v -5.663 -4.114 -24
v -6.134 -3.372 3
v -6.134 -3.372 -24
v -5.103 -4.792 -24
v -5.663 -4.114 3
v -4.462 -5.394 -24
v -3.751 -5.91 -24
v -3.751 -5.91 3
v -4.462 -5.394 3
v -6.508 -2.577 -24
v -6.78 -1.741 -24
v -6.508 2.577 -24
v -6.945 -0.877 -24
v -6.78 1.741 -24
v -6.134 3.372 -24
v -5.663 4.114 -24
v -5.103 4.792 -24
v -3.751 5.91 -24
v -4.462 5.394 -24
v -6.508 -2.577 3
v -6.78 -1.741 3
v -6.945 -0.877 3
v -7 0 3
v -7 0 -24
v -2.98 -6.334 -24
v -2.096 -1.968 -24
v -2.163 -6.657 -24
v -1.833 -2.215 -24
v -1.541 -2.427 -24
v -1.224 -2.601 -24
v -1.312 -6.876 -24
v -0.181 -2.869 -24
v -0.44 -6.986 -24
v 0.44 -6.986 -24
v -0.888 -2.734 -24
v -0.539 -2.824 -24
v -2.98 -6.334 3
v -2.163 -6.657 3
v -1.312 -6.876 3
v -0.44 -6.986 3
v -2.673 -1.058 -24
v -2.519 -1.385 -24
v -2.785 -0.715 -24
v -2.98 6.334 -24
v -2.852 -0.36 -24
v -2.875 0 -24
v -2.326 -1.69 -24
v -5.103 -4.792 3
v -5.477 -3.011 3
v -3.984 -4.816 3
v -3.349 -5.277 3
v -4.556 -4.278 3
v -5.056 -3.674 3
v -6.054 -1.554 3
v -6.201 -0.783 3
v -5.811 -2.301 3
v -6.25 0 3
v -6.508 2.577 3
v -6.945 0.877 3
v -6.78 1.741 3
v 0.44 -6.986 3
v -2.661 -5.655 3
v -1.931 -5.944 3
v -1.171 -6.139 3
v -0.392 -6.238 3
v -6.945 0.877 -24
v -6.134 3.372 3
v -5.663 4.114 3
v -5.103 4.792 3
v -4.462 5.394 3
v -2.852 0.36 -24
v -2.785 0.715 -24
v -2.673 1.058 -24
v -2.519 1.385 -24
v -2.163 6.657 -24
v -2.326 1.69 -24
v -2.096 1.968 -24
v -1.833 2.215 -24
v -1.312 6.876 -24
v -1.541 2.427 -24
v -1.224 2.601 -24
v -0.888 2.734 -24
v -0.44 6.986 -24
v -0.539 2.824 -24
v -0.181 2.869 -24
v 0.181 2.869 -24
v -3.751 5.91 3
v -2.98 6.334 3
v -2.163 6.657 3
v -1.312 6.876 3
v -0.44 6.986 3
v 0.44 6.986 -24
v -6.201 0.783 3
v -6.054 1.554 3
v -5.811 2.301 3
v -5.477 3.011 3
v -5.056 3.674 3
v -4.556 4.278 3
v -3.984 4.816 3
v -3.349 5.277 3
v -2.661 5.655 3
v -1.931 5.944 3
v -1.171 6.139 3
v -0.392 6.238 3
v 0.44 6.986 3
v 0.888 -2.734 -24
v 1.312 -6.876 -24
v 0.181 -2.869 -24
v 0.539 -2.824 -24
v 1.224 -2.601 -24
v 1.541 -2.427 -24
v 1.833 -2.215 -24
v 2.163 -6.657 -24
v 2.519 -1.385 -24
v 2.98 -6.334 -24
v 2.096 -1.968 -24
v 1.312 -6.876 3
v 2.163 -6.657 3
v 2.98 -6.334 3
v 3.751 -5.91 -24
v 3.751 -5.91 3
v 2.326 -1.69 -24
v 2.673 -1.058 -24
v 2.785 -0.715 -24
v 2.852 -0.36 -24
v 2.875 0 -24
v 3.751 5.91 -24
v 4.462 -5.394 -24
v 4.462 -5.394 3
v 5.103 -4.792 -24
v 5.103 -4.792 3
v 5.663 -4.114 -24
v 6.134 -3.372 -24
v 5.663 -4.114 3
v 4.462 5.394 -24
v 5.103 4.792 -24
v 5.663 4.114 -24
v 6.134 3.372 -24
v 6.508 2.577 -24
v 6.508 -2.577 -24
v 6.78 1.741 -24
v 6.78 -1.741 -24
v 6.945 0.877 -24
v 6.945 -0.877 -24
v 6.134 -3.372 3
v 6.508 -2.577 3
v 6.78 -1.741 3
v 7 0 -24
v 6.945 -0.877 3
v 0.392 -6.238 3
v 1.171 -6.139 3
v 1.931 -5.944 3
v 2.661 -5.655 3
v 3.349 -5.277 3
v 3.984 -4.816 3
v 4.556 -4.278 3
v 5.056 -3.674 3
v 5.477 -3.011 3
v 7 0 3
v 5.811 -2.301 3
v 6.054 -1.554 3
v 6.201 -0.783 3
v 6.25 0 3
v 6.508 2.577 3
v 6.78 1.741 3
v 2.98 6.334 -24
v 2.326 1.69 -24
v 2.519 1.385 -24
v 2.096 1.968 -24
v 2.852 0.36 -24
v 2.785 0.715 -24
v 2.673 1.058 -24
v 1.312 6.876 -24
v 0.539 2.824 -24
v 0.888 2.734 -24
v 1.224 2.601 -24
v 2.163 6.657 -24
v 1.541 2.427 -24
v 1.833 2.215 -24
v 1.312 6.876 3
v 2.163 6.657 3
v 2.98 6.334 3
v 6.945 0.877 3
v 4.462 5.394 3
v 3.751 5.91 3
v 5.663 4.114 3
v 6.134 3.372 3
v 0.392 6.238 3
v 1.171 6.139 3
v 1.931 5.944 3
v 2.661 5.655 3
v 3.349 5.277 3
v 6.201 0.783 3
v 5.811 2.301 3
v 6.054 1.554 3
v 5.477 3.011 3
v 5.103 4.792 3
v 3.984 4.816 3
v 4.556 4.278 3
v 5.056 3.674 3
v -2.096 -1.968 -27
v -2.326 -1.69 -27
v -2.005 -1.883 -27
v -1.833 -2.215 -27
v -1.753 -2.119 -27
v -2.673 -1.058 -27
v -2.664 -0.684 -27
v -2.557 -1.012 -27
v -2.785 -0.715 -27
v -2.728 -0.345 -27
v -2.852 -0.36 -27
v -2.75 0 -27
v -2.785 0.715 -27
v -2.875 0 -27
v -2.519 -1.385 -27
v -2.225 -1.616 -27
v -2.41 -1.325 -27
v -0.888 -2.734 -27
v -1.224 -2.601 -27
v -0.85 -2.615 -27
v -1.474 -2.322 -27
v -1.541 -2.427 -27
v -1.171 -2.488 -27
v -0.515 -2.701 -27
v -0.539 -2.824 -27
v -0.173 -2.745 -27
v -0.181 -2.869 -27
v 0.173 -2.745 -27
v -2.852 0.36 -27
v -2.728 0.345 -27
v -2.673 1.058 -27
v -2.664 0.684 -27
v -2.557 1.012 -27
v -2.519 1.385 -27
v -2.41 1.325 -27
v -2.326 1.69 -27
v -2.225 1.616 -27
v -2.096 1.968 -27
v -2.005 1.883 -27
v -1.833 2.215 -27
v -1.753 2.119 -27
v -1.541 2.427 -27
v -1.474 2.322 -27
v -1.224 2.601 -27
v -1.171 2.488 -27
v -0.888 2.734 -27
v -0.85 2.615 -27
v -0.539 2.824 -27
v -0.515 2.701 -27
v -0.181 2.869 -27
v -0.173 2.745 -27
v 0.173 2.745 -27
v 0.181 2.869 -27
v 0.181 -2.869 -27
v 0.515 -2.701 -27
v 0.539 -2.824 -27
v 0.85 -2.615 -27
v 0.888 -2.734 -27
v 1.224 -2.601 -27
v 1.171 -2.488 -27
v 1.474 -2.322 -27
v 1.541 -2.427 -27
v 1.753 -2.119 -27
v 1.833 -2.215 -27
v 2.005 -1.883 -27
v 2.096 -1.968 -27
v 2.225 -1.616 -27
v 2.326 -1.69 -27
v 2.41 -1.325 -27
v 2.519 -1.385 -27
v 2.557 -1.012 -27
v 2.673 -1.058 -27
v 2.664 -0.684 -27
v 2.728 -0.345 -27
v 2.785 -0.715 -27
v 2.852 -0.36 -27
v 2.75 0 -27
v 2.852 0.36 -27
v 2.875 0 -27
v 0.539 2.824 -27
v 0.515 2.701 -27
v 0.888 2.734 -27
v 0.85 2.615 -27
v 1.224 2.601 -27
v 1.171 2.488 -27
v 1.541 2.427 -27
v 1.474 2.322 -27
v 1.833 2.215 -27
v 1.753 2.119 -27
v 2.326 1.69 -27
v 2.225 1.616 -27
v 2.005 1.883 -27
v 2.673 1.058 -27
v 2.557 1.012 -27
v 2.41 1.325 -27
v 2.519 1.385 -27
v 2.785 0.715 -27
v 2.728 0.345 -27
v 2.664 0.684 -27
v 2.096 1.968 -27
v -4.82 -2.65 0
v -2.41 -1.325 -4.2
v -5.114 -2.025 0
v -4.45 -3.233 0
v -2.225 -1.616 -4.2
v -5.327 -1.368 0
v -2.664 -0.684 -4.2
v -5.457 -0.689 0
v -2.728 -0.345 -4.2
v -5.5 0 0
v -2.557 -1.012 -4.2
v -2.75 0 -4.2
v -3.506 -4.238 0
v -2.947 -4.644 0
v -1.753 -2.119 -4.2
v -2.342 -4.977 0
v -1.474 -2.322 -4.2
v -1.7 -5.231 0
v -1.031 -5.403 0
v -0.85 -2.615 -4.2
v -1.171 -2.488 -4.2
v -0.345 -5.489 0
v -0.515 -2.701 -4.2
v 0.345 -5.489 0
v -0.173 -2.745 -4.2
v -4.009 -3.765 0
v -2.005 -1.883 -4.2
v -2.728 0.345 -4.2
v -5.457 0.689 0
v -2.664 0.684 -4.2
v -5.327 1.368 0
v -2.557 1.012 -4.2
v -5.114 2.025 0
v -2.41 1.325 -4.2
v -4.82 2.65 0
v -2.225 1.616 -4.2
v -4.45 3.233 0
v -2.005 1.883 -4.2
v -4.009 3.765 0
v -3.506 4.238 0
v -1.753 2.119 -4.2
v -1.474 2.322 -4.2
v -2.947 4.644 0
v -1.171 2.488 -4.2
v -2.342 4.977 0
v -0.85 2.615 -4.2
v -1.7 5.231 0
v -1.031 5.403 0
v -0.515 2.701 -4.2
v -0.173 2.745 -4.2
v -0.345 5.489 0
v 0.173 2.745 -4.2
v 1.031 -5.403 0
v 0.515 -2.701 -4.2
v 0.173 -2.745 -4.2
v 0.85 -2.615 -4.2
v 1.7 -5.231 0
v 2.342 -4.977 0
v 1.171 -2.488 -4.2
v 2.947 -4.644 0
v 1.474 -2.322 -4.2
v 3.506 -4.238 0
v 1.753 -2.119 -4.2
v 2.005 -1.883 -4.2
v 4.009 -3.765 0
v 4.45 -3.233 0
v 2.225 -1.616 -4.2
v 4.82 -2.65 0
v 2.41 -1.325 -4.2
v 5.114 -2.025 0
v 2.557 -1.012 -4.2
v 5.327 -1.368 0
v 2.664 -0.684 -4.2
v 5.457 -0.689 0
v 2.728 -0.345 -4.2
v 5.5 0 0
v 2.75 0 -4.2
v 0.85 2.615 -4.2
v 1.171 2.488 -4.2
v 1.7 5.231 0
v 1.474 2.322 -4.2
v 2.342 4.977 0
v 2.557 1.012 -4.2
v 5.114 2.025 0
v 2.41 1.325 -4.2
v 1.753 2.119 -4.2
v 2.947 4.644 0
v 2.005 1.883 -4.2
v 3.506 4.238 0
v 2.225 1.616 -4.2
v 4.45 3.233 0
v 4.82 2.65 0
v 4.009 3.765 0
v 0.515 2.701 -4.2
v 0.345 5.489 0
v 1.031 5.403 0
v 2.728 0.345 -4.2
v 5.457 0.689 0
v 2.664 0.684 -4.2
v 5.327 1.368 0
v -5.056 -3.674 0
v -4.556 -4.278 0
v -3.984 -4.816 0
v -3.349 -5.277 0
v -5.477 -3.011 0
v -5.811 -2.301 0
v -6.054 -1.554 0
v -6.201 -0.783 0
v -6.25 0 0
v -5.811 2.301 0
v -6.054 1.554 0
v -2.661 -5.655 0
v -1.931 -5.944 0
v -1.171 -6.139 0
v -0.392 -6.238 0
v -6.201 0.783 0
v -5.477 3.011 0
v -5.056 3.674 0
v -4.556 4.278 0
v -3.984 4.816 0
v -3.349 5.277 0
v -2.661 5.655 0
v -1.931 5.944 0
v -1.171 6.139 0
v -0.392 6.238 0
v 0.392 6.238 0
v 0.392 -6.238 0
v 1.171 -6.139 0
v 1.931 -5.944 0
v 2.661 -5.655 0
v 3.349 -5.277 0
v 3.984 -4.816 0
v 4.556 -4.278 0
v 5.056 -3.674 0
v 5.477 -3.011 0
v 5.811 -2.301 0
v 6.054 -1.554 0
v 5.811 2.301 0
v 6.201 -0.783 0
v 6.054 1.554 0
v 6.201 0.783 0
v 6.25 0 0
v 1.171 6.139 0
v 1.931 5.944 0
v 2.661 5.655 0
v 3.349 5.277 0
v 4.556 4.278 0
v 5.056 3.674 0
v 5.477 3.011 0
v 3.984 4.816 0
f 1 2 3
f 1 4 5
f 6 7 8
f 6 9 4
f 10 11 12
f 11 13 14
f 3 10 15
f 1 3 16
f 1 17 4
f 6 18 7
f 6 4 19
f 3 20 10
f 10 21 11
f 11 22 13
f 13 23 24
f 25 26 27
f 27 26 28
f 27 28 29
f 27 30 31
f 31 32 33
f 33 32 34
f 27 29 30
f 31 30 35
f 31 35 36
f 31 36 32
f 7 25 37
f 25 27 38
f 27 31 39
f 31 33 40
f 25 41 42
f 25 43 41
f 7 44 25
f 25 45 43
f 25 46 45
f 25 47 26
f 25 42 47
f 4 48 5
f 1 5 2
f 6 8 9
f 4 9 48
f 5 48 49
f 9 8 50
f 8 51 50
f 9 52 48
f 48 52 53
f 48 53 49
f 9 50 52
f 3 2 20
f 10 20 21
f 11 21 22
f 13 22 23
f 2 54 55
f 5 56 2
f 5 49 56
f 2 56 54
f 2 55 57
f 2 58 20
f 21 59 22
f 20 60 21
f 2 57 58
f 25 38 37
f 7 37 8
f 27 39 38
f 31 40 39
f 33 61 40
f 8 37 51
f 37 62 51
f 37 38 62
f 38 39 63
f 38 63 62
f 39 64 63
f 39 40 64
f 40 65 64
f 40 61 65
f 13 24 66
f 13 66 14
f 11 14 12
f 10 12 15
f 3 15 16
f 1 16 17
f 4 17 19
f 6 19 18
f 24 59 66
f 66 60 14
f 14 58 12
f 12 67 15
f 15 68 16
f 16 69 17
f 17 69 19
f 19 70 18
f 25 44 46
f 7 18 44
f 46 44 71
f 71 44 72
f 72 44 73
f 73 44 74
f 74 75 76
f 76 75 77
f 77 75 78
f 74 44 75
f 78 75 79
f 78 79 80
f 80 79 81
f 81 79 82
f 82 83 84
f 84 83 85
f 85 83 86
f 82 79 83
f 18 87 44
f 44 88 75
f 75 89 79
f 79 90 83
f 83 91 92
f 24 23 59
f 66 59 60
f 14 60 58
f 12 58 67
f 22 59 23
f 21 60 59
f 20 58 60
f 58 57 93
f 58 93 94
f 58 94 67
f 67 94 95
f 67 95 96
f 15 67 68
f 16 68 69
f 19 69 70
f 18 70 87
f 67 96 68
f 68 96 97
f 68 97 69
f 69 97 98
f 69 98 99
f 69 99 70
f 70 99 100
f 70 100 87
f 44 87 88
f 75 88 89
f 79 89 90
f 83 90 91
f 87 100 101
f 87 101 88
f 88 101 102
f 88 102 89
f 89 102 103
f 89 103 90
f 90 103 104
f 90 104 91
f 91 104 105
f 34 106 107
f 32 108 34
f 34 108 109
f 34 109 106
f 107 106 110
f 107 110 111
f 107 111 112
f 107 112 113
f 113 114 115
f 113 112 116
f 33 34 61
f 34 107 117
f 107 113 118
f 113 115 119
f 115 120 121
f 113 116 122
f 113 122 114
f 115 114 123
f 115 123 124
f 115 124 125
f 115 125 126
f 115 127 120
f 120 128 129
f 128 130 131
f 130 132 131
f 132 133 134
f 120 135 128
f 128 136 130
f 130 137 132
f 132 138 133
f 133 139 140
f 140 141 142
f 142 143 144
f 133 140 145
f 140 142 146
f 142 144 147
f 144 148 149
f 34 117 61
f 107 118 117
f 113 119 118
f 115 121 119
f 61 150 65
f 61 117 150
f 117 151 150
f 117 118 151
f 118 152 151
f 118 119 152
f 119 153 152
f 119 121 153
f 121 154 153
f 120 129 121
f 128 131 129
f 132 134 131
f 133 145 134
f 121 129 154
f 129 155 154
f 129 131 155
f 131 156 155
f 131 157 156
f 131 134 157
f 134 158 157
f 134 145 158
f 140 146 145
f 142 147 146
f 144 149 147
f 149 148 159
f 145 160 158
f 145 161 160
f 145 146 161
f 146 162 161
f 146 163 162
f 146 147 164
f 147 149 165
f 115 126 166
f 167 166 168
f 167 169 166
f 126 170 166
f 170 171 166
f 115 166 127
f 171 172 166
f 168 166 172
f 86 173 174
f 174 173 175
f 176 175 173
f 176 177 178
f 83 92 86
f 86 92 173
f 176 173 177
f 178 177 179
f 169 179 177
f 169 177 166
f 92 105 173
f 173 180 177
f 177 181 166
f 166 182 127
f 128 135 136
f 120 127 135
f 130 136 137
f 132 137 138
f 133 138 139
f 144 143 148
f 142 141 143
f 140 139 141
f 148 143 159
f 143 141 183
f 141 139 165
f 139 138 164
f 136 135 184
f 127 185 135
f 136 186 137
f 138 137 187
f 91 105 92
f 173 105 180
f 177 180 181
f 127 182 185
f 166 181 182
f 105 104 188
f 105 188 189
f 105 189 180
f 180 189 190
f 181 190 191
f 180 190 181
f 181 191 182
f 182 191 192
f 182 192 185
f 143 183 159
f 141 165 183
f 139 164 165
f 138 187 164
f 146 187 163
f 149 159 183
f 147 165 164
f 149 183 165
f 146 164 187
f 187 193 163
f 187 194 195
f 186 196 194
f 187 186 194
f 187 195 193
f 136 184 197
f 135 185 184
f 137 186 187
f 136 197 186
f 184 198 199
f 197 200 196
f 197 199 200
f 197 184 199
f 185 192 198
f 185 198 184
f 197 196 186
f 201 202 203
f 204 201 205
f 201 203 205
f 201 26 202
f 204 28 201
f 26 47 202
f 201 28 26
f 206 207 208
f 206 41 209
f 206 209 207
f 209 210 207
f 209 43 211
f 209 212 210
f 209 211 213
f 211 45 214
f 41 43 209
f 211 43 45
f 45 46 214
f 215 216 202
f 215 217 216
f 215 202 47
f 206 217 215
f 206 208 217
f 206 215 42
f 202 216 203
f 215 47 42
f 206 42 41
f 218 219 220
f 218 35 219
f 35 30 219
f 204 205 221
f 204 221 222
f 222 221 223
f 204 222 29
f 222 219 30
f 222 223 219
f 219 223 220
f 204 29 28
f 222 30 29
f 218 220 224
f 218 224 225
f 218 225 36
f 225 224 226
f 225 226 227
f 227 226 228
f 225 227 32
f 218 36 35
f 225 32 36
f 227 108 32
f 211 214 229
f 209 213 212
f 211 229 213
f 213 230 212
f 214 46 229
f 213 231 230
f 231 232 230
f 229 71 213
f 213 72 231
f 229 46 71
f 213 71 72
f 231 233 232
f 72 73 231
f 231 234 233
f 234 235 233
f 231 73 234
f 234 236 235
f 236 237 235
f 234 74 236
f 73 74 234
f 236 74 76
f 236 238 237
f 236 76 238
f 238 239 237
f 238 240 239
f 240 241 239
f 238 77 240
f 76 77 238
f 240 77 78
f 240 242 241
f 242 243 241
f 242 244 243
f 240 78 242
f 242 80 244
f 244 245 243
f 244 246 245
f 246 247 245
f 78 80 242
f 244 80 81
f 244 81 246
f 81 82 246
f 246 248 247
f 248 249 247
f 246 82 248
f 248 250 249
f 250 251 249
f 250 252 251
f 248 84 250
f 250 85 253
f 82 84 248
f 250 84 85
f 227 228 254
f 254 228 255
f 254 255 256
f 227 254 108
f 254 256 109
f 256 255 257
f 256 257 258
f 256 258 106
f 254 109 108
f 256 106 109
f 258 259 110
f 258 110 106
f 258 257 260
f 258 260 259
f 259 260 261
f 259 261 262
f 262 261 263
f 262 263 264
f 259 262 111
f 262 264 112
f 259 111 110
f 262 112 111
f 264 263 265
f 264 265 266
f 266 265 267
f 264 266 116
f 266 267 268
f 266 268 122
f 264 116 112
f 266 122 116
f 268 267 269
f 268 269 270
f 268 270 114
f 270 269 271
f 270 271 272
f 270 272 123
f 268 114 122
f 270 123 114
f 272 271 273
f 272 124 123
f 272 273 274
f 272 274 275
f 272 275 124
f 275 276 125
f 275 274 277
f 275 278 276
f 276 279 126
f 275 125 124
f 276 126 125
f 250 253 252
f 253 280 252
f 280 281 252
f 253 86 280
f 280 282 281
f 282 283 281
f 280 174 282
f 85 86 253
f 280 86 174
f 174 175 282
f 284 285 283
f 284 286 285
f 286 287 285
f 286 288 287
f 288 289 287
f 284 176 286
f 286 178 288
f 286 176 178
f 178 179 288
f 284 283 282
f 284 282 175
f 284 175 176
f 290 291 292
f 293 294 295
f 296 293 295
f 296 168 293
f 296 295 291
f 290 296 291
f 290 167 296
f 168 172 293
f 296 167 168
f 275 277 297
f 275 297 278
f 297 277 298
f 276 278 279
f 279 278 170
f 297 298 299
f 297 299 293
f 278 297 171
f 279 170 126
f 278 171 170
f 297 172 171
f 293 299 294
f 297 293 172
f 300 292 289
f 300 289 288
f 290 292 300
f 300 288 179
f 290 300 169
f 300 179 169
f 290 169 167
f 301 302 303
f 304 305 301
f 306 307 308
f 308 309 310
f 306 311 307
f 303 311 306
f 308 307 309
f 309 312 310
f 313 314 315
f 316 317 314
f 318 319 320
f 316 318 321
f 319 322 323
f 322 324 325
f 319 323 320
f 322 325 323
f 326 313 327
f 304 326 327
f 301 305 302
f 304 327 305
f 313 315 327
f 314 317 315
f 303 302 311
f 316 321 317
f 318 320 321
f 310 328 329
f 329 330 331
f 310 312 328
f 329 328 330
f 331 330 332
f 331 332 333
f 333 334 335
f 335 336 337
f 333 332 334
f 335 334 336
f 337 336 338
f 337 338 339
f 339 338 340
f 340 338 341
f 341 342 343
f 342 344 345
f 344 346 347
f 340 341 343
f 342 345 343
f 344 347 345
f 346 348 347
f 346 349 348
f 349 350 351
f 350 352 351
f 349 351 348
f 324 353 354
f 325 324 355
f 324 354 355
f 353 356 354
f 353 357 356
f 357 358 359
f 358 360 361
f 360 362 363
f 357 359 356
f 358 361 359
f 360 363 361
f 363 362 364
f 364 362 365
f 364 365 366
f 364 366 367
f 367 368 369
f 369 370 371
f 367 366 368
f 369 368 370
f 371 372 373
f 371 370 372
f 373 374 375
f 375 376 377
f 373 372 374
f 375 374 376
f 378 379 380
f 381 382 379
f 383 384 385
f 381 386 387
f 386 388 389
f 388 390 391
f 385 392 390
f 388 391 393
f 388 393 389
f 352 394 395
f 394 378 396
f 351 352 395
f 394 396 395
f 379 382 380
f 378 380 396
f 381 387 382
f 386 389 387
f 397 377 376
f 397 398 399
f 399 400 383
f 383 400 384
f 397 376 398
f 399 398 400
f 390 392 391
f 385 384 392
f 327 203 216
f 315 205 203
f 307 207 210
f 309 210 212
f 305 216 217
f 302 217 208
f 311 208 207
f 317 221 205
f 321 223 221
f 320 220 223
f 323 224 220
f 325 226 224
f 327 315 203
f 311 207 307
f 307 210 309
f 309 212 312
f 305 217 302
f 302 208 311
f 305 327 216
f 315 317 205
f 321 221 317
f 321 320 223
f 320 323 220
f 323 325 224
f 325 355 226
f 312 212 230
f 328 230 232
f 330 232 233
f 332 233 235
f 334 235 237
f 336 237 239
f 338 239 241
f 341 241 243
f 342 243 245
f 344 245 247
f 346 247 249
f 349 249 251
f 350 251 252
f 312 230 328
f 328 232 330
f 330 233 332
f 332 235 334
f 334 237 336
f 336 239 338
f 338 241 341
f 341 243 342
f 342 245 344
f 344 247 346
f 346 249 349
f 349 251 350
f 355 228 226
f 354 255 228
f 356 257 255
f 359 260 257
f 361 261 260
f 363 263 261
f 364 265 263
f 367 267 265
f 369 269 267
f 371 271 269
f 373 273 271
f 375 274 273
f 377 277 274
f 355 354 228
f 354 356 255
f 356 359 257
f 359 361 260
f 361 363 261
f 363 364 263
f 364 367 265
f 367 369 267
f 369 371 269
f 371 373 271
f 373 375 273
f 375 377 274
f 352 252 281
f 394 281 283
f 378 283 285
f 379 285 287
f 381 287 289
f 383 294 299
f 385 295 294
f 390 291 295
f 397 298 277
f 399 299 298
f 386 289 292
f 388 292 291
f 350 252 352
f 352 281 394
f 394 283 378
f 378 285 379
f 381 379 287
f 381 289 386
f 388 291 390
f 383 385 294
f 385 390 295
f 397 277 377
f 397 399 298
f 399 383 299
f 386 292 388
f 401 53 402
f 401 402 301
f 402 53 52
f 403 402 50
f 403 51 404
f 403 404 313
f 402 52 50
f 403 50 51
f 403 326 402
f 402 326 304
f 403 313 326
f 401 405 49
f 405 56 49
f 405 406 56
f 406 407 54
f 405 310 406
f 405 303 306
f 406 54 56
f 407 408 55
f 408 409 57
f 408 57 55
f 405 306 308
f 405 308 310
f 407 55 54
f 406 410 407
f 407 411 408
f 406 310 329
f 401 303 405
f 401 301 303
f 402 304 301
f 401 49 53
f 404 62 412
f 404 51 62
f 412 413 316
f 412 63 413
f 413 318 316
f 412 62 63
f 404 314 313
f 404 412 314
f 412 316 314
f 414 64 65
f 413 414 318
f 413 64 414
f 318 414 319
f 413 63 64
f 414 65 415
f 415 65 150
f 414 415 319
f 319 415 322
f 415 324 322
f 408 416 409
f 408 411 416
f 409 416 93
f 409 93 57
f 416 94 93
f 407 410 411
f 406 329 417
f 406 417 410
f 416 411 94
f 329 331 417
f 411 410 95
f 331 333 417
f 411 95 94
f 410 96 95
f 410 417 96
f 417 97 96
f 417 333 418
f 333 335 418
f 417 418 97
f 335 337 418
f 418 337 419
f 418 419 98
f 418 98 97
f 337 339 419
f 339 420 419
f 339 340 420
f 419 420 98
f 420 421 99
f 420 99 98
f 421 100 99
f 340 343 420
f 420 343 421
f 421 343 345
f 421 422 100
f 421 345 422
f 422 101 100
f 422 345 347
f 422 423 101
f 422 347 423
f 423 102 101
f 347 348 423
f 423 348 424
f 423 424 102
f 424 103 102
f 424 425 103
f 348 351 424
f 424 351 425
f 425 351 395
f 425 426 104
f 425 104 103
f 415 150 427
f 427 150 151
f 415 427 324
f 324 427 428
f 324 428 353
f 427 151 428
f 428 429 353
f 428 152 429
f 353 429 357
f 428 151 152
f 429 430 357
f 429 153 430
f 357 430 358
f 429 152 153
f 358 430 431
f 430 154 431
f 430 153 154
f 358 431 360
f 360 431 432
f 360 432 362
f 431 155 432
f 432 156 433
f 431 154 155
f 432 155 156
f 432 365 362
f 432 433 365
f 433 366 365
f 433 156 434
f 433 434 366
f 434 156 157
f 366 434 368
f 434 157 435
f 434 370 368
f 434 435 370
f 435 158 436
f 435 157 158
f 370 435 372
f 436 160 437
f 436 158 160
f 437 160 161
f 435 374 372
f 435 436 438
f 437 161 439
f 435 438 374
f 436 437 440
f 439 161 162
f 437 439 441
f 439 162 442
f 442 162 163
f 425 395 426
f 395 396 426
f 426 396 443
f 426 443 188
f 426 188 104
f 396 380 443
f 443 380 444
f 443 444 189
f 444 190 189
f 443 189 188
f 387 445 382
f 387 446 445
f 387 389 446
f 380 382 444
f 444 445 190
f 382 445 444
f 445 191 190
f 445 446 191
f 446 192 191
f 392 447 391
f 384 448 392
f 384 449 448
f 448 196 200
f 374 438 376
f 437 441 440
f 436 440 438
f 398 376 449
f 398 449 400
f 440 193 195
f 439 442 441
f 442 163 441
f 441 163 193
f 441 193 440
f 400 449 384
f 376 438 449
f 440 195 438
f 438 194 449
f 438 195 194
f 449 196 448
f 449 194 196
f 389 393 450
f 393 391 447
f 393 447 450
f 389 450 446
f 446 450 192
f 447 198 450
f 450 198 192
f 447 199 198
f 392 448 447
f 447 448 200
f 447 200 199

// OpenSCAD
$fn = 50;

difference() {
	union() {
		translate(v = [0, 0, -24.0]) {
			cylinder(h = 27, r = 7.0);
		}
		#translate(v = [0, 0, -27.0]) {
			cylinder(h = 27, r = 2.875);
		}
	}
	union() {
		translate(v = [0, 0, 0]) {
			rotate(a = [0, 0, 0]) {
				difference() {
					union() {
						translate(v = [0, 0, -27.0]) {
							cylinder(h = 27, r = 2.25);
						}
						translate(v = [0, 0, -4.2]) {
							cylinder(h = 4.2, r1 = 2.75, r2 = 5.5);
						}
						translate(v = [0, 0, -27.0]) {
							cylinder(h = 27, r = 2.75);
						}
						translate(v = [0, 0, -27.0]) {
							cylinder(h = 27, r = 2.25);
						}
					}
					union();
				}
			}
		}
		#cylinder(h = 3, r = 6.25);
	}
}
